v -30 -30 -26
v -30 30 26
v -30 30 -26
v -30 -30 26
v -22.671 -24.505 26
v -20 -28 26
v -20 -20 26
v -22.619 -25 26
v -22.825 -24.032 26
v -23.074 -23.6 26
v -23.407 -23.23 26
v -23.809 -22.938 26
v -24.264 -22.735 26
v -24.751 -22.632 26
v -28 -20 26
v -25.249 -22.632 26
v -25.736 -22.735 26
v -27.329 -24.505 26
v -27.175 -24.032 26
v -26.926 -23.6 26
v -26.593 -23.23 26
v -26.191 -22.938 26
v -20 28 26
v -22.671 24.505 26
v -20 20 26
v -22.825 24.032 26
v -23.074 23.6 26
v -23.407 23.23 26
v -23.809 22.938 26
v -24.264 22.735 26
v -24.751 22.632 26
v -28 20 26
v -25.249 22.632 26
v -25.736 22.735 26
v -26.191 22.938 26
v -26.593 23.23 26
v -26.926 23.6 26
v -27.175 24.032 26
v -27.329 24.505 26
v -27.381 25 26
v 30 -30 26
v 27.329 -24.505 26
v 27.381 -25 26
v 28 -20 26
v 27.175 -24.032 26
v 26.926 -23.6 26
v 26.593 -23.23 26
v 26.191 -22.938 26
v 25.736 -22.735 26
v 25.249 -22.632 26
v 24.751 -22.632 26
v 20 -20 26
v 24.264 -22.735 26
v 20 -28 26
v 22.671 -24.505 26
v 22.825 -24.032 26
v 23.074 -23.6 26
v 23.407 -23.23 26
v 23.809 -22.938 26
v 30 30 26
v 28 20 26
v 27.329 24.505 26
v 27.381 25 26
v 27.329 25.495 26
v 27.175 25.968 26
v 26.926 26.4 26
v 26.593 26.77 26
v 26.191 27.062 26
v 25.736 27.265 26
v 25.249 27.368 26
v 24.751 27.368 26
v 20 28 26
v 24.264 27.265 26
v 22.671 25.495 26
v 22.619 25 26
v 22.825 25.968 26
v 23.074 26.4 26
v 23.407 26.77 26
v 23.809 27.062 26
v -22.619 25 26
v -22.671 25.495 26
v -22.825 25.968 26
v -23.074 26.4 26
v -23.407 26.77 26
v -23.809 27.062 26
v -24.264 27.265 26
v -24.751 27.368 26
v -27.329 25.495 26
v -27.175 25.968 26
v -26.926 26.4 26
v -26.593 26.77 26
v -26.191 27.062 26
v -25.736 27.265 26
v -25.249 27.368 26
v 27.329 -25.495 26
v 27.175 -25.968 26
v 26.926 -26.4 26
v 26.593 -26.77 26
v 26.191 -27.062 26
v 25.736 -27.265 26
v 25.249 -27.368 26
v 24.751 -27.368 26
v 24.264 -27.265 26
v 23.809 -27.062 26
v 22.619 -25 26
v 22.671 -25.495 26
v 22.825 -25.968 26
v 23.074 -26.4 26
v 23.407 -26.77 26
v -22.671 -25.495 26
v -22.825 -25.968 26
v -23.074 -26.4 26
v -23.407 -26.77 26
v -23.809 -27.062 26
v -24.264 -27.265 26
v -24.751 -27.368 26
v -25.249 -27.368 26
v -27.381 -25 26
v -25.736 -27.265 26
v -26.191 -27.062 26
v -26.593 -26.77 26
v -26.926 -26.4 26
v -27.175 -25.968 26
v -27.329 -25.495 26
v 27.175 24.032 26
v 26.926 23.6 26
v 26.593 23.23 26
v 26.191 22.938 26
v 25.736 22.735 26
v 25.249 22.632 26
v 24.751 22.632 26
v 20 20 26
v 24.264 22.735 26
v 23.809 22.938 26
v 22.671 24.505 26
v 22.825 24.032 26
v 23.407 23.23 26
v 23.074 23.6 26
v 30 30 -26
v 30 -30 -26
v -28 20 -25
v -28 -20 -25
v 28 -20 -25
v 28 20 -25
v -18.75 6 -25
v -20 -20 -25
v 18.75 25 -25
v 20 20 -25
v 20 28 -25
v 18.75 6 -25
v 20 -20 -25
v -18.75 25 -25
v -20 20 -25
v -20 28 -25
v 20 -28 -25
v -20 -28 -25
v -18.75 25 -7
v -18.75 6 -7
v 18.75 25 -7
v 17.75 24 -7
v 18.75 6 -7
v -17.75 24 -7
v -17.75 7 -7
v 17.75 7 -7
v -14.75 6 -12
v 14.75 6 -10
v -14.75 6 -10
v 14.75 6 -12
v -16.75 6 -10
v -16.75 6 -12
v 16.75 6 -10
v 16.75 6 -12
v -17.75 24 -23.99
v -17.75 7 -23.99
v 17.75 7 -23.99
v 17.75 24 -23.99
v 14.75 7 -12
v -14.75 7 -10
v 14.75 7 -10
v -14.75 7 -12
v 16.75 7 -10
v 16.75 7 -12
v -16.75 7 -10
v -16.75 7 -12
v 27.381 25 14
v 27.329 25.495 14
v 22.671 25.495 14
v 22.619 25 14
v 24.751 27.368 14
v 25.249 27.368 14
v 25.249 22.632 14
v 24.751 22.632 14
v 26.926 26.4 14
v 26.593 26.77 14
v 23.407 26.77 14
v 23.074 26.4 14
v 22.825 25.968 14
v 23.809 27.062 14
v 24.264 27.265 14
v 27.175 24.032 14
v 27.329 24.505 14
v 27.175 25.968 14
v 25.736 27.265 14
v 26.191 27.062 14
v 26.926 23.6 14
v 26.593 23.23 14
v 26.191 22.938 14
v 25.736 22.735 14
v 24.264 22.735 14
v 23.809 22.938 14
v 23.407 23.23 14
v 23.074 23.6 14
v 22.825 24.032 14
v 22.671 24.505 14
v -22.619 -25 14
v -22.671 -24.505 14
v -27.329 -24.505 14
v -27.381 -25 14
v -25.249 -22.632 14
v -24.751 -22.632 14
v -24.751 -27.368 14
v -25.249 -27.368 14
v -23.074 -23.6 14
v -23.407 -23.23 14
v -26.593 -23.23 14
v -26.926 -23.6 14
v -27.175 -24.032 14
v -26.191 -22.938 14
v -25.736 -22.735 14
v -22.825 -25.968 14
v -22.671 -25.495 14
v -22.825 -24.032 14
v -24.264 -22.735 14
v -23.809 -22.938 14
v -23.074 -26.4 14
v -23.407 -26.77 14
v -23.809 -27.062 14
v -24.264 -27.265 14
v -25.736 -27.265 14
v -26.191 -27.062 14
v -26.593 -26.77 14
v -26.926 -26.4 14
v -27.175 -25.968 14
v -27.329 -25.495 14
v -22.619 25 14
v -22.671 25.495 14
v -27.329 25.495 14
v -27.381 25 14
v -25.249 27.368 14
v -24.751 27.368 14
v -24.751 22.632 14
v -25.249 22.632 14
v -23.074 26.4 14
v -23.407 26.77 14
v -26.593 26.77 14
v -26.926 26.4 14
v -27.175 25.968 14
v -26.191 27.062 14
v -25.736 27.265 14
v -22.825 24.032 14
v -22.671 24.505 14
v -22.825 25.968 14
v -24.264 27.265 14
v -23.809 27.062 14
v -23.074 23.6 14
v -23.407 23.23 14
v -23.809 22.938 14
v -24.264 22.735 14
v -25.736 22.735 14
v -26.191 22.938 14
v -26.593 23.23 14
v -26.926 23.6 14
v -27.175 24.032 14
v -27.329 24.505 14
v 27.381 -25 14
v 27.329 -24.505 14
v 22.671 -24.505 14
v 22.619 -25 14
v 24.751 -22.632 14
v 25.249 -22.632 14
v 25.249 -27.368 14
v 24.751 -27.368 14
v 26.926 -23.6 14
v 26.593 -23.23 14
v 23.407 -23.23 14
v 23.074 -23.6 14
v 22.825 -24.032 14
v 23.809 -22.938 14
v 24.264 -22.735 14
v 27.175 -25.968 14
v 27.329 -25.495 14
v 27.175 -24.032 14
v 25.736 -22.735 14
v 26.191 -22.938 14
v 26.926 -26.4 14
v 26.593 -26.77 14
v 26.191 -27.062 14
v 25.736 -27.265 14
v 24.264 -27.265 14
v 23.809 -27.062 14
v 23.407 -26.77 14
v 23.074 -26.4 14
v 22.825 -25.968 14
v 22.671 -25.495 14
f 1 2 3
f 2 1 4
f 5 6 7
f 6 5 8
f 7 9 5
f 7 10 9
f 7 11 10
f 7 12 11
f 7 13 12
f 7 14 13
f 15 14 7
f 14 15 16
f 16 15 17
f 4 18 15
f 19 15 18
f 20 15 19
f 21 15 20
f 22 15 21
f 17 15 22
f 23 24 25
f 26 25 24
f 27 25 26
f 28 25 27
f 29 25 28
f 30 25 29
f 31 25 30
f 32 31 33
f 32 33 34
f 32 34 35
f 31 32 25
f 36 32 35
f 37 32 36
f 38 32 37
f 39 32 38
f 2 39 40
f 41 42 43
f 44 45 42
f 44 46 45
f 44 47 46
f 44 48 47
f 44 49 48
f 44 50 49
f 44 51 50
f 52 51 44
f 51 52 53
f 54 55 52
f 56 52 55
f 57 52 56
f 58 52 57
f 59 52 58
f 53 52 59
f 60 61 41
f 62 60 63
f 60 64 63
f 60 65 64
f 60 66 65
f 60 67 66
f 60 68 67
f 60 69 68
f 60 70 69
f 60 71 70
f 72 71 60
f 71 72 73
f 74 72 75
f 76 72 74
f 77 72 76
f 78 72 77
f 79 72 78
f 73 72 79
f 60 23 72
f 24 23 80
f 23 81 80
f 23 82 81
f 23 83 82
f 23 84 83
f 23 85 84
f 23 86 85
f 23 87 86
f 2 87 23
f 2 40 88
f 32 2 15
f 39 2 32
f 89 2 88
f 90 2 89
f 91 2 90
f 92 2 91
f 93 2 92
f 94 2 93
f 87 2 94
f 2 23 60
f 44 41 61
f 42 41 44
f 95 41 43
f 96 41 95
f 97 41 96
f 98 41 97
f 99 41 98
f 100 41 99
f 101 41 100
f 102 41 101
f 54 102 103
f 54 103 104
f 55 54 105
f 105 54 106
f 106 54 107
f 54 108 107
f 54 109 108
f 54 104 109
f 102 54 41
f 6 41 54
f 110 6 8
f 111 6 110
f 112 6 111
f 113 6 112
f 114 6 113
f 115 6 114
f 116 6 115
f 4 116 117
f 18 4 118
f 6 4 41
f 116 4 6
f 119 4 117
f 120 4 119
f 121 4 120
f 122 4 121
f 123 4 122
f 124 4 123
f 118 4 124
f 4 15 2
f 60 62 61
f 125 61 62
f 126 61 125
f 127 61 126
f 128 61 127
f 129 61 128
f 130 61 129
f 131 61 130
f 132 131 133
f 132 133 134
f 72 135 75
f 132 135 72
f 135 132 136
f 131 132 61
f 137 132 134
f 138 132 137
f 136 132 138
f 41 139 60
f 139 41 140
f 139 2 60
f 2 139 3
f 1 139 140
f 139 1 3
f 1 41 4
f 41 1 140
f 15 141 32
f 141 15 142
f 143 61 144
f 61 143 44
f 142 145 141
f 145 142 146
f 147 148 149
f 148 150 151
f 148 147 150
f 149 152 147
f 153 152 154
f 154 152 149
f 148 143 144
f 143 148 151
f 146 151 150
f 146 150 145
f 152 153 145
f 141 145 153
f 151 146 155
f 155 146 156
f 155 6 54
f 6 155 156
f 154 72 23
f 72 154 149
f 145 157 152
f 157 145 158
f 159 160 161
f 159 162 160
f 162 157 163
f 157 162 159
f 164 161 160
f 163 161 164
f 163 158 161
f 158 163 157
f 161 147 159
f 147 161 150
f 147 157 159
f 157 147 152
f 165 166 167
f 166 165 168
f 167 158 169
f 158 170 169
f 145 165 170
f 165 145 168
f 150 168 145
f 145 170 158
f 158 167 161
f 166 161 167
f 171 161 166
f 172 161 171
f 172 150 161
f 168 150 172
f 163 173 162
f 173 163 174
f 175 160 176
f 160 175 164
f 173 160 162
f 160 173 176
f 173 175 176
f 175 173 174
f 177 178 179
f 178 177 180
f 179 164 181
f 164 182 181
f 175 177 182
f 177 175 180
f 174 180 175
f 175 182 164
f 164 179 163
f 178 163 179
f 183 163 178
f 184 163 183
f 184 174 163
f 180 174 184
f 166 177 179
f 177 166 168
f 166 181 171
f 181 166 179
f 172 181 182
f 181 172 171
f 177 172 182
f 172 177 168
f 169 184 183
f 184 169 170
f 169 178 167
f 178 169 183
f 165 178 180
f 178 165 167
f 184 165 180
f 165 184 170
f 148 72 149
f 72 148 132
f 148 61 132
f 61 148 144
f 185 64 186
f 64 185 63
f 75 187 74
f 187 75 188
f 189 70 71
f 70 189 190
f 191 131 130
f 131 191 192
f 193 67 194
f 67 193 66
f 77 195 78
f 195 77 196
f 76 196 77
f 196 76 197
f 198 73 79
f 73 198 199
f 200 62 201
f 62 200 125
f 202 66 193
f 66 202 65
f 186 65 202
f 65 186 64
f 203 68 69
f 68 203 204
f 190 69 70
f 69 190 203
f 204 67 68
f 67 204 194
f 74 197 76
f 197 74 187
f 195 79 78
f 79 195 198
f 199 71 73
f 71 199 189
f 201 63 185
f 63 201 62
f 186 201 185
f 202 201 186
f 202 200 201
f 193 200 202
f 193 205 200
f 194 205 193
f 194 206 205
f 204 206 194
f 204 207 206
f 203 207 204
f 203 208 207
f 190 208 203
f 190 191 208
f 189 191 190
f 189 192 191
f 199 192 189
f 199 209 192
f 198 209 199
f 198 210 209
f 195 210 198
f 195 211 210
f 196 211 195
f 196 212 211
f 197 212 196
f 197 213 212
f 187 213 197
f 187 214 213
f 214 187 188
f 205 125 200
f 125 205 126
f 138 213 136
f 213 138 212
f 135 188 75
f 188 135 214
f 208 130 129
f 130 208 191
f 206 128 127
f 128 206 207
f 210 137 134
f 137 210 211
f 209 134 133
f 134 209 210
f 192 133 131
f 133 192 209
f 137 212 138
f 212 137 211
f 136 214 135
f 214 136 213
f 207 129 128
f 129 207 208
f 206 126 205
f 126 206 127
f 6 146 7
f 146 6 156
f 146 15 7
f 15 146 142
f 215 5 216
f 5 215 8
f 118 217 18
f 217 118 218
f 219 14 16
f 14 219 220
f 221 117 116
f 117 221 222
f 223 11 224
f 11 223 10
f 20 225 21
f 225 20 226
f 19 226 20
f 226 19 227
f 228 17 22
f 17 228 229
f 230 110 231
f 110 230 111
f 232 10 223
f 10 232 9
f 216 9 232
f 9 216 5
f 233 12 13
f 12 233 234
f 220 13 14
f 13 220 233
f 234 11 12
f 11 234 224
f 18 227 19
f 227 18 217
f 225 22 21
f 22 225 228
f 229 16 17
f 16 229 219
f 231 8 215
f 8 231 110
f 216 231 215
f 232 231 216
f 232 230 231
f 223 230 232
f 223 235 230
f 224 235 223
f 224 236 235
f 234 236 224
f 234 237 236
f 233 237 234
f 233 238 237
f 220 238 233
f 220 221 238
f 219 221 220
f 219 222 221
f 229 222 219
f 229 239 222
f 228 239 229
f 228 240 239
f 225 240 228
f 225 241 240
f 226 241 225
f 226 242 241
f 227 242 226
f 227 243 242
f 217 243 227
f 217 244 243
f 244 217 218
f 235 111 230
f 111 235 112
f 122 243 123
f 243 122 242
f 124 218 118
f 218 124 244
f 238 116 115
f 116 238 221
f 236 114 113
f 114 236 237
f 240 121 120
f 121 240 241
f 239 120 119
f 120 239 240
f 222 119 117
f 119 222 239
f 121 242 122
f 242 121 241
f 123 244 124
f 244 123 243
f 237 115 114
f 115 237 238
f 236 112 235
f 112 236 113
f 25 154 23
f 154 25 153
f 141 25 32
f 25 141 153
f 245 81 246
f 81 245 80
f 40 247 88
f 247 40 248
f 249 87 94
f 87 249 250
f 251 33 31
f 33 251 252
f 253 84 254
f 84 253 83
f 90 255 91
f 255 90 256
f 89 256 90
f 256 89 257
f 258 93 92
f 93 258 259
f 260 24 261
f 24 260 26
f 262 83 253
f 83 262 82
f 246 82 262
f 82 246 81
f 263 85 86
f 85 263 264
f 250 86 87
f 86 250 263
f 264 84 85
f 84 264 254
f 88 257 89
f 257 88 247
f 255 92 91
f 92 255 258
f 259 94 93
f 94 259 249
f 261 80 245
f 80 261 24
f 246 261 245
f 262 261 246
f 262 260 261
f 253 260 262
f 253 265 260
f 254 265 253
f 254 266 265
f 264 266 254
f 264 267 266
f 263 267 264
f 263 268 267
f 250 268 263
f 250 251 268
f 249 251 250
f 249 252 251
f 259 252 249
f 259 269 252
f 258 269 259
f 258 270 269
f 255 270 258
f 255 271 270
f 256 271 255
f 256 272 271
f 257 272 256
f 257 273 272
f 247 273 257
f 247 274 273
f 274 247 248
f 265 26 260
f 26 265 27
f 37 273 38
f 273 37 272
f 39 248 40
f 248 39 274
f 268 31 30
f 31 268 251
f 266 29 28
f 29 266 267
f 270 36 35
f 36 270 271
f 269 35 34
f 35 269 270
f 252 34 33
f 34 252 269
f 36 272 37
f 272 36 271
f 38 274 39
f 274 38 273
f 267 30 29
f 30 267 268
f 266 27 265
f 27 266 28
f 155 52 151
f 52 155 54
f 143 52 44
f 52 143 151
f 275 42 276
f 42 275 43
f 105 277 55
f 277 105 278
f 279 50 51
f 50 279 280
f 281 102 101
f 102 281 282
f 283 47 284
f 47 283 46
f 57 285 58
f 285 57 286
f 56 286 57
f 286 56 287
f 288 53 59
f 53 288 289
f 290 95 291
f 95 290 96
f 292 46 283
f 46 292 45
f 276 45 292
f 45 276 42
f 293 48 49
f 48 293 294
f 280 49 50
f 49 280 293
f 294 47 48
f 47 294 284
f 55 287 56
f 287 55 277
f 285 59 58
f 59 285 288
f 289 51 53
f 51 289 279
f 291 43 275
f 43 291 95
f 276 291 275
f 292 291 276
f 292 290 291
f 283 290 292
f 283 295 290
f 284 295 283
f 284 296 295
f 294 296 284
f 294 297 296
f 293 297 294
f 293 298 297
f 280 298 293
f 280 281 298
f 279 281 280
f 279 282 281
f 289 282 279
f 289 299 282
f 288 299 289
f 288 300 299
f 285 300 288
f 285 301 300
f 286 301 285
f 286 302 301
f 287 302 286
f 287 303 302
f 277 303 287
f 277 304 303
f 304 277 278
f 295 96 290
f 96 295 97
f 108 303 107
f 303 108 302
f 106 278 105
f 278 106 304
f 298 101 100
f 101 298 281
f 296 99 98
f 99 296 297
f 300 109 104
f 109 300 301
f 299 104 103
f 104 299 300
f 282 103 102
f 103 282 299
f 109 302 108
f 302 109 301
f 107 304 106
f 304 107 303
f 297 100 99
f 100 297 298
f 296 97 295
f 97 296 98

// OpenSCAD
/**************************************************
    Variables
***************************************************/
$fn=30;

WALL_THICKNESS = 2;
BOTTOM_THICKNESS = 1;

POST_SIZE = 15;

BOARD_X = 30;
BOARD_Y = 60;
BOARD_Z = 18;

BOX_X = 60;
BOX_Y = 60;
BOX_Z = 52;

BAT_Y = 19;
BAT_X = 37.5;
BAT_Z = 19;

SWITCH_DRILL_DIAMETER = 18.5;
BUTTON_DRILL_DIAMETER = 12.5;

STANDOFF_SIZE = 10;

DIVIDER_STANDOFF_HEIGHT = 25;

INSERT_DRILL_DIAMETER = 4.7625;

/**************************************************
    Modules
***************************************************/

module box_bottom(l, w, h, wall_thickness=1, bottom_thickness=1){
    difference(){
        cube([l,w,h], center=true);
        translate([0,0,bottom_thickness])
            cube([l-(wall_thickness*2),w-(wall_thickness*2),h], center=true);
    
        //window to see in.
        //translate([0, w/2, h/2-2])cube([l-2, wall_thickness + 3, 34], center=true);
    }
}

module insert_post(h=10){
    difference(){
        cube([STANDOFF_SIZE, STANDOFF_SIZE, h], center=true);
        //translate([0,0, -h/2])cylinder(h=h, d=15);
        translate([0,0, (h/2)-12])cylinder(r=INSERT_DRILL_DIAMETER/2, h=12);
    }

}

module all_posts(BOX_X, BOX_Y, BOX_Z, wall_thickness=2){
    
    translate([BOX_X/2 - STANDOFF_SIZE/2, 
               BOX_Y/2 - STANDOFF_SIZE/2, 0])
        insert_post(BOX_Z);
    
    translate([-BOX_X/2 + STANDOFF_SIZE/2, 
               -BOX_Y/2 + STANDOFF_SIZE/2, 0])
        insert_post(BOX_Z);
    
    translate([-BOX_X/2 + STANDOFF_SIZE/2, 
               BOX_Y/2 - STANDOFF_SIZE/2, 0])
        insert_post(BOX_Z);
    
    translate([BOX_X/2 - STANDOFF_SIZE/2, 
               -BOX_Y/2 + STANDOFF_SIZE/2, 0])
        insert_post(BOX_Z);
}



module lid(l,w,h, wall_thickness=1){
    translate([0,0, h/2 + 3])
        cube([l, w,2],center=true);
}


module top_screw_holes(){
    
    SCREW_HOLE_DIAMETER = 4.8;
    
    translate([BOX_X/2 - STANDOFF_SIZE/2,
               BOX_Y/2 - STANDOFF_SIZE/2, 0])
        cylinder(r=SCREW_HOLE_DIAMETER/2, h=BOX_Z+10);
    
    translate([-BOX_X/2 + STANDOFF_SIZE/2, 
               -BOX_Y/2 + STANDOFF_SIZE/2, 0])
        cylinder(r=SCREW_HOLE_DIAMETER/2, h=BOX_Z+10);
    
    translate([-BOX_X/2 + STANDOFF_SIZE/2, 
               BOX_Y/2 - STANDOFF_SIZE/2, 0])
        cylinder(r=SCREW_HOLE_DIAMETER/2, h=BOX_Z+10);
    
    translate([BOX_X/2 - STANDOFF_SIZE/2, 
               -BOX_Y/2 + STANDOFF_SIZE/2, 0])
        cylinder(r=SCREW_HOLE_DIAMETER/2, h=BOX_Z+10);
}


module board(){
    cube([BOARD_X,BOARD_Y,BOARD_Z], center=true);
}

module switch_hole(){
   cylinder(r=SWITCH_DRILL_DIAMETER/2, h=BOX_Z + 100, center=true);
}

module button_hole(){
    cylinder(r=BUTTON_DRILL_DIAMETER/2, h=BOX_Z + 100, center=true);
}

module battery_holder(){
    difference(){
        cube([BAT_X, BAT_Y, BAT_Z], center=true);
        translate([0,0,1.01]){
            cube([BAT_X-2,BAT_Y-2,BAT_Z-2], center=true);
            
        }
        
        translate([(BAT_X/2)-3,-10,BAT_Z/2 - 4]){
            cube([2,BAT_Y/2,2], center=true);
        }
        
        translate([0-(BAT_X/2)+3,-10,BAT_Z/2 - 4]){
            cube([2,BAT_Y/2,2], center=true);
        }
    }   
}

module divider_standoffs(){
    Y_DISTANCE = ((BOX_Y/2)-(STANDOFF_SIZE/2));
    Z_DISTANCE = (-1*(BOX_Z/2) + (DIVIDER_STANDOFF_HEIGHT/2) + BOTTOM_THICKNESS);
    translate([0,Y_DISTANCE,Z_DISTANCE]){
        cube([(BOX_X-(2*STANDOFF_SIZE)),STANDOFF_SIZE,DIVIDER_STANDOFF_HEIGHT], center=true);
    }
    
    
    translate([0,-Y_DISTANCE,Z_DISTANCE]){
        cube([(BOX_X-(2*STANDOFF_SIZE)),STANDOFF_SIZE,DIVIDER_STANDOFF_HEIGHT], center=true);
    }
    
    
}

module divider_plate(){
    PLATE_X = BOX_X - (2 * STANDOFF_SIZE) - 2;
    cube([PLATE_X,BOX_Y-(2*WALL_THICKNESS)-3,2], center=true);
    translate([0,10,(BAT_Z/2)]){
        battery_holder();
    }
}





/**************************************************
    Render
***************************************************/

difference(){
    box_bottom(BOX_X, BOX_Y, BOX_Z, wall_thickness=WALL_THICKNESS, bottom_thickness=BOTTOM_THICKNESS);
    
    
    //window
    //cube([BOX_X+1,60,50], center=true);
    
}



//divider_standoffs();

translate([0,(BOX_Y/2)-(BAT_Y/2)-5, -(BOX_Z/2) + (BAT_Z/2)]){
	battery_holder();
}
all_posts(BOX_X, BOX_Y, BOX_Z, wall_thickness=WALL_THICKNESS);


/*
difference(){
    lid(BOX_X, BOX_Y, BOX_Z, wall_thickness=2);
    top_screw_holes();
    
    translate([-12,0,0]){
        switch_hole();
    }
    translate([12,10,0]){
        button_hole();
    }
    
    translate([12,-10,0]){
        button_hole();
    }
}*/

/*
translate([0,0,(BOX_Z/2)-20]){
    divider_plate();
}
*/
